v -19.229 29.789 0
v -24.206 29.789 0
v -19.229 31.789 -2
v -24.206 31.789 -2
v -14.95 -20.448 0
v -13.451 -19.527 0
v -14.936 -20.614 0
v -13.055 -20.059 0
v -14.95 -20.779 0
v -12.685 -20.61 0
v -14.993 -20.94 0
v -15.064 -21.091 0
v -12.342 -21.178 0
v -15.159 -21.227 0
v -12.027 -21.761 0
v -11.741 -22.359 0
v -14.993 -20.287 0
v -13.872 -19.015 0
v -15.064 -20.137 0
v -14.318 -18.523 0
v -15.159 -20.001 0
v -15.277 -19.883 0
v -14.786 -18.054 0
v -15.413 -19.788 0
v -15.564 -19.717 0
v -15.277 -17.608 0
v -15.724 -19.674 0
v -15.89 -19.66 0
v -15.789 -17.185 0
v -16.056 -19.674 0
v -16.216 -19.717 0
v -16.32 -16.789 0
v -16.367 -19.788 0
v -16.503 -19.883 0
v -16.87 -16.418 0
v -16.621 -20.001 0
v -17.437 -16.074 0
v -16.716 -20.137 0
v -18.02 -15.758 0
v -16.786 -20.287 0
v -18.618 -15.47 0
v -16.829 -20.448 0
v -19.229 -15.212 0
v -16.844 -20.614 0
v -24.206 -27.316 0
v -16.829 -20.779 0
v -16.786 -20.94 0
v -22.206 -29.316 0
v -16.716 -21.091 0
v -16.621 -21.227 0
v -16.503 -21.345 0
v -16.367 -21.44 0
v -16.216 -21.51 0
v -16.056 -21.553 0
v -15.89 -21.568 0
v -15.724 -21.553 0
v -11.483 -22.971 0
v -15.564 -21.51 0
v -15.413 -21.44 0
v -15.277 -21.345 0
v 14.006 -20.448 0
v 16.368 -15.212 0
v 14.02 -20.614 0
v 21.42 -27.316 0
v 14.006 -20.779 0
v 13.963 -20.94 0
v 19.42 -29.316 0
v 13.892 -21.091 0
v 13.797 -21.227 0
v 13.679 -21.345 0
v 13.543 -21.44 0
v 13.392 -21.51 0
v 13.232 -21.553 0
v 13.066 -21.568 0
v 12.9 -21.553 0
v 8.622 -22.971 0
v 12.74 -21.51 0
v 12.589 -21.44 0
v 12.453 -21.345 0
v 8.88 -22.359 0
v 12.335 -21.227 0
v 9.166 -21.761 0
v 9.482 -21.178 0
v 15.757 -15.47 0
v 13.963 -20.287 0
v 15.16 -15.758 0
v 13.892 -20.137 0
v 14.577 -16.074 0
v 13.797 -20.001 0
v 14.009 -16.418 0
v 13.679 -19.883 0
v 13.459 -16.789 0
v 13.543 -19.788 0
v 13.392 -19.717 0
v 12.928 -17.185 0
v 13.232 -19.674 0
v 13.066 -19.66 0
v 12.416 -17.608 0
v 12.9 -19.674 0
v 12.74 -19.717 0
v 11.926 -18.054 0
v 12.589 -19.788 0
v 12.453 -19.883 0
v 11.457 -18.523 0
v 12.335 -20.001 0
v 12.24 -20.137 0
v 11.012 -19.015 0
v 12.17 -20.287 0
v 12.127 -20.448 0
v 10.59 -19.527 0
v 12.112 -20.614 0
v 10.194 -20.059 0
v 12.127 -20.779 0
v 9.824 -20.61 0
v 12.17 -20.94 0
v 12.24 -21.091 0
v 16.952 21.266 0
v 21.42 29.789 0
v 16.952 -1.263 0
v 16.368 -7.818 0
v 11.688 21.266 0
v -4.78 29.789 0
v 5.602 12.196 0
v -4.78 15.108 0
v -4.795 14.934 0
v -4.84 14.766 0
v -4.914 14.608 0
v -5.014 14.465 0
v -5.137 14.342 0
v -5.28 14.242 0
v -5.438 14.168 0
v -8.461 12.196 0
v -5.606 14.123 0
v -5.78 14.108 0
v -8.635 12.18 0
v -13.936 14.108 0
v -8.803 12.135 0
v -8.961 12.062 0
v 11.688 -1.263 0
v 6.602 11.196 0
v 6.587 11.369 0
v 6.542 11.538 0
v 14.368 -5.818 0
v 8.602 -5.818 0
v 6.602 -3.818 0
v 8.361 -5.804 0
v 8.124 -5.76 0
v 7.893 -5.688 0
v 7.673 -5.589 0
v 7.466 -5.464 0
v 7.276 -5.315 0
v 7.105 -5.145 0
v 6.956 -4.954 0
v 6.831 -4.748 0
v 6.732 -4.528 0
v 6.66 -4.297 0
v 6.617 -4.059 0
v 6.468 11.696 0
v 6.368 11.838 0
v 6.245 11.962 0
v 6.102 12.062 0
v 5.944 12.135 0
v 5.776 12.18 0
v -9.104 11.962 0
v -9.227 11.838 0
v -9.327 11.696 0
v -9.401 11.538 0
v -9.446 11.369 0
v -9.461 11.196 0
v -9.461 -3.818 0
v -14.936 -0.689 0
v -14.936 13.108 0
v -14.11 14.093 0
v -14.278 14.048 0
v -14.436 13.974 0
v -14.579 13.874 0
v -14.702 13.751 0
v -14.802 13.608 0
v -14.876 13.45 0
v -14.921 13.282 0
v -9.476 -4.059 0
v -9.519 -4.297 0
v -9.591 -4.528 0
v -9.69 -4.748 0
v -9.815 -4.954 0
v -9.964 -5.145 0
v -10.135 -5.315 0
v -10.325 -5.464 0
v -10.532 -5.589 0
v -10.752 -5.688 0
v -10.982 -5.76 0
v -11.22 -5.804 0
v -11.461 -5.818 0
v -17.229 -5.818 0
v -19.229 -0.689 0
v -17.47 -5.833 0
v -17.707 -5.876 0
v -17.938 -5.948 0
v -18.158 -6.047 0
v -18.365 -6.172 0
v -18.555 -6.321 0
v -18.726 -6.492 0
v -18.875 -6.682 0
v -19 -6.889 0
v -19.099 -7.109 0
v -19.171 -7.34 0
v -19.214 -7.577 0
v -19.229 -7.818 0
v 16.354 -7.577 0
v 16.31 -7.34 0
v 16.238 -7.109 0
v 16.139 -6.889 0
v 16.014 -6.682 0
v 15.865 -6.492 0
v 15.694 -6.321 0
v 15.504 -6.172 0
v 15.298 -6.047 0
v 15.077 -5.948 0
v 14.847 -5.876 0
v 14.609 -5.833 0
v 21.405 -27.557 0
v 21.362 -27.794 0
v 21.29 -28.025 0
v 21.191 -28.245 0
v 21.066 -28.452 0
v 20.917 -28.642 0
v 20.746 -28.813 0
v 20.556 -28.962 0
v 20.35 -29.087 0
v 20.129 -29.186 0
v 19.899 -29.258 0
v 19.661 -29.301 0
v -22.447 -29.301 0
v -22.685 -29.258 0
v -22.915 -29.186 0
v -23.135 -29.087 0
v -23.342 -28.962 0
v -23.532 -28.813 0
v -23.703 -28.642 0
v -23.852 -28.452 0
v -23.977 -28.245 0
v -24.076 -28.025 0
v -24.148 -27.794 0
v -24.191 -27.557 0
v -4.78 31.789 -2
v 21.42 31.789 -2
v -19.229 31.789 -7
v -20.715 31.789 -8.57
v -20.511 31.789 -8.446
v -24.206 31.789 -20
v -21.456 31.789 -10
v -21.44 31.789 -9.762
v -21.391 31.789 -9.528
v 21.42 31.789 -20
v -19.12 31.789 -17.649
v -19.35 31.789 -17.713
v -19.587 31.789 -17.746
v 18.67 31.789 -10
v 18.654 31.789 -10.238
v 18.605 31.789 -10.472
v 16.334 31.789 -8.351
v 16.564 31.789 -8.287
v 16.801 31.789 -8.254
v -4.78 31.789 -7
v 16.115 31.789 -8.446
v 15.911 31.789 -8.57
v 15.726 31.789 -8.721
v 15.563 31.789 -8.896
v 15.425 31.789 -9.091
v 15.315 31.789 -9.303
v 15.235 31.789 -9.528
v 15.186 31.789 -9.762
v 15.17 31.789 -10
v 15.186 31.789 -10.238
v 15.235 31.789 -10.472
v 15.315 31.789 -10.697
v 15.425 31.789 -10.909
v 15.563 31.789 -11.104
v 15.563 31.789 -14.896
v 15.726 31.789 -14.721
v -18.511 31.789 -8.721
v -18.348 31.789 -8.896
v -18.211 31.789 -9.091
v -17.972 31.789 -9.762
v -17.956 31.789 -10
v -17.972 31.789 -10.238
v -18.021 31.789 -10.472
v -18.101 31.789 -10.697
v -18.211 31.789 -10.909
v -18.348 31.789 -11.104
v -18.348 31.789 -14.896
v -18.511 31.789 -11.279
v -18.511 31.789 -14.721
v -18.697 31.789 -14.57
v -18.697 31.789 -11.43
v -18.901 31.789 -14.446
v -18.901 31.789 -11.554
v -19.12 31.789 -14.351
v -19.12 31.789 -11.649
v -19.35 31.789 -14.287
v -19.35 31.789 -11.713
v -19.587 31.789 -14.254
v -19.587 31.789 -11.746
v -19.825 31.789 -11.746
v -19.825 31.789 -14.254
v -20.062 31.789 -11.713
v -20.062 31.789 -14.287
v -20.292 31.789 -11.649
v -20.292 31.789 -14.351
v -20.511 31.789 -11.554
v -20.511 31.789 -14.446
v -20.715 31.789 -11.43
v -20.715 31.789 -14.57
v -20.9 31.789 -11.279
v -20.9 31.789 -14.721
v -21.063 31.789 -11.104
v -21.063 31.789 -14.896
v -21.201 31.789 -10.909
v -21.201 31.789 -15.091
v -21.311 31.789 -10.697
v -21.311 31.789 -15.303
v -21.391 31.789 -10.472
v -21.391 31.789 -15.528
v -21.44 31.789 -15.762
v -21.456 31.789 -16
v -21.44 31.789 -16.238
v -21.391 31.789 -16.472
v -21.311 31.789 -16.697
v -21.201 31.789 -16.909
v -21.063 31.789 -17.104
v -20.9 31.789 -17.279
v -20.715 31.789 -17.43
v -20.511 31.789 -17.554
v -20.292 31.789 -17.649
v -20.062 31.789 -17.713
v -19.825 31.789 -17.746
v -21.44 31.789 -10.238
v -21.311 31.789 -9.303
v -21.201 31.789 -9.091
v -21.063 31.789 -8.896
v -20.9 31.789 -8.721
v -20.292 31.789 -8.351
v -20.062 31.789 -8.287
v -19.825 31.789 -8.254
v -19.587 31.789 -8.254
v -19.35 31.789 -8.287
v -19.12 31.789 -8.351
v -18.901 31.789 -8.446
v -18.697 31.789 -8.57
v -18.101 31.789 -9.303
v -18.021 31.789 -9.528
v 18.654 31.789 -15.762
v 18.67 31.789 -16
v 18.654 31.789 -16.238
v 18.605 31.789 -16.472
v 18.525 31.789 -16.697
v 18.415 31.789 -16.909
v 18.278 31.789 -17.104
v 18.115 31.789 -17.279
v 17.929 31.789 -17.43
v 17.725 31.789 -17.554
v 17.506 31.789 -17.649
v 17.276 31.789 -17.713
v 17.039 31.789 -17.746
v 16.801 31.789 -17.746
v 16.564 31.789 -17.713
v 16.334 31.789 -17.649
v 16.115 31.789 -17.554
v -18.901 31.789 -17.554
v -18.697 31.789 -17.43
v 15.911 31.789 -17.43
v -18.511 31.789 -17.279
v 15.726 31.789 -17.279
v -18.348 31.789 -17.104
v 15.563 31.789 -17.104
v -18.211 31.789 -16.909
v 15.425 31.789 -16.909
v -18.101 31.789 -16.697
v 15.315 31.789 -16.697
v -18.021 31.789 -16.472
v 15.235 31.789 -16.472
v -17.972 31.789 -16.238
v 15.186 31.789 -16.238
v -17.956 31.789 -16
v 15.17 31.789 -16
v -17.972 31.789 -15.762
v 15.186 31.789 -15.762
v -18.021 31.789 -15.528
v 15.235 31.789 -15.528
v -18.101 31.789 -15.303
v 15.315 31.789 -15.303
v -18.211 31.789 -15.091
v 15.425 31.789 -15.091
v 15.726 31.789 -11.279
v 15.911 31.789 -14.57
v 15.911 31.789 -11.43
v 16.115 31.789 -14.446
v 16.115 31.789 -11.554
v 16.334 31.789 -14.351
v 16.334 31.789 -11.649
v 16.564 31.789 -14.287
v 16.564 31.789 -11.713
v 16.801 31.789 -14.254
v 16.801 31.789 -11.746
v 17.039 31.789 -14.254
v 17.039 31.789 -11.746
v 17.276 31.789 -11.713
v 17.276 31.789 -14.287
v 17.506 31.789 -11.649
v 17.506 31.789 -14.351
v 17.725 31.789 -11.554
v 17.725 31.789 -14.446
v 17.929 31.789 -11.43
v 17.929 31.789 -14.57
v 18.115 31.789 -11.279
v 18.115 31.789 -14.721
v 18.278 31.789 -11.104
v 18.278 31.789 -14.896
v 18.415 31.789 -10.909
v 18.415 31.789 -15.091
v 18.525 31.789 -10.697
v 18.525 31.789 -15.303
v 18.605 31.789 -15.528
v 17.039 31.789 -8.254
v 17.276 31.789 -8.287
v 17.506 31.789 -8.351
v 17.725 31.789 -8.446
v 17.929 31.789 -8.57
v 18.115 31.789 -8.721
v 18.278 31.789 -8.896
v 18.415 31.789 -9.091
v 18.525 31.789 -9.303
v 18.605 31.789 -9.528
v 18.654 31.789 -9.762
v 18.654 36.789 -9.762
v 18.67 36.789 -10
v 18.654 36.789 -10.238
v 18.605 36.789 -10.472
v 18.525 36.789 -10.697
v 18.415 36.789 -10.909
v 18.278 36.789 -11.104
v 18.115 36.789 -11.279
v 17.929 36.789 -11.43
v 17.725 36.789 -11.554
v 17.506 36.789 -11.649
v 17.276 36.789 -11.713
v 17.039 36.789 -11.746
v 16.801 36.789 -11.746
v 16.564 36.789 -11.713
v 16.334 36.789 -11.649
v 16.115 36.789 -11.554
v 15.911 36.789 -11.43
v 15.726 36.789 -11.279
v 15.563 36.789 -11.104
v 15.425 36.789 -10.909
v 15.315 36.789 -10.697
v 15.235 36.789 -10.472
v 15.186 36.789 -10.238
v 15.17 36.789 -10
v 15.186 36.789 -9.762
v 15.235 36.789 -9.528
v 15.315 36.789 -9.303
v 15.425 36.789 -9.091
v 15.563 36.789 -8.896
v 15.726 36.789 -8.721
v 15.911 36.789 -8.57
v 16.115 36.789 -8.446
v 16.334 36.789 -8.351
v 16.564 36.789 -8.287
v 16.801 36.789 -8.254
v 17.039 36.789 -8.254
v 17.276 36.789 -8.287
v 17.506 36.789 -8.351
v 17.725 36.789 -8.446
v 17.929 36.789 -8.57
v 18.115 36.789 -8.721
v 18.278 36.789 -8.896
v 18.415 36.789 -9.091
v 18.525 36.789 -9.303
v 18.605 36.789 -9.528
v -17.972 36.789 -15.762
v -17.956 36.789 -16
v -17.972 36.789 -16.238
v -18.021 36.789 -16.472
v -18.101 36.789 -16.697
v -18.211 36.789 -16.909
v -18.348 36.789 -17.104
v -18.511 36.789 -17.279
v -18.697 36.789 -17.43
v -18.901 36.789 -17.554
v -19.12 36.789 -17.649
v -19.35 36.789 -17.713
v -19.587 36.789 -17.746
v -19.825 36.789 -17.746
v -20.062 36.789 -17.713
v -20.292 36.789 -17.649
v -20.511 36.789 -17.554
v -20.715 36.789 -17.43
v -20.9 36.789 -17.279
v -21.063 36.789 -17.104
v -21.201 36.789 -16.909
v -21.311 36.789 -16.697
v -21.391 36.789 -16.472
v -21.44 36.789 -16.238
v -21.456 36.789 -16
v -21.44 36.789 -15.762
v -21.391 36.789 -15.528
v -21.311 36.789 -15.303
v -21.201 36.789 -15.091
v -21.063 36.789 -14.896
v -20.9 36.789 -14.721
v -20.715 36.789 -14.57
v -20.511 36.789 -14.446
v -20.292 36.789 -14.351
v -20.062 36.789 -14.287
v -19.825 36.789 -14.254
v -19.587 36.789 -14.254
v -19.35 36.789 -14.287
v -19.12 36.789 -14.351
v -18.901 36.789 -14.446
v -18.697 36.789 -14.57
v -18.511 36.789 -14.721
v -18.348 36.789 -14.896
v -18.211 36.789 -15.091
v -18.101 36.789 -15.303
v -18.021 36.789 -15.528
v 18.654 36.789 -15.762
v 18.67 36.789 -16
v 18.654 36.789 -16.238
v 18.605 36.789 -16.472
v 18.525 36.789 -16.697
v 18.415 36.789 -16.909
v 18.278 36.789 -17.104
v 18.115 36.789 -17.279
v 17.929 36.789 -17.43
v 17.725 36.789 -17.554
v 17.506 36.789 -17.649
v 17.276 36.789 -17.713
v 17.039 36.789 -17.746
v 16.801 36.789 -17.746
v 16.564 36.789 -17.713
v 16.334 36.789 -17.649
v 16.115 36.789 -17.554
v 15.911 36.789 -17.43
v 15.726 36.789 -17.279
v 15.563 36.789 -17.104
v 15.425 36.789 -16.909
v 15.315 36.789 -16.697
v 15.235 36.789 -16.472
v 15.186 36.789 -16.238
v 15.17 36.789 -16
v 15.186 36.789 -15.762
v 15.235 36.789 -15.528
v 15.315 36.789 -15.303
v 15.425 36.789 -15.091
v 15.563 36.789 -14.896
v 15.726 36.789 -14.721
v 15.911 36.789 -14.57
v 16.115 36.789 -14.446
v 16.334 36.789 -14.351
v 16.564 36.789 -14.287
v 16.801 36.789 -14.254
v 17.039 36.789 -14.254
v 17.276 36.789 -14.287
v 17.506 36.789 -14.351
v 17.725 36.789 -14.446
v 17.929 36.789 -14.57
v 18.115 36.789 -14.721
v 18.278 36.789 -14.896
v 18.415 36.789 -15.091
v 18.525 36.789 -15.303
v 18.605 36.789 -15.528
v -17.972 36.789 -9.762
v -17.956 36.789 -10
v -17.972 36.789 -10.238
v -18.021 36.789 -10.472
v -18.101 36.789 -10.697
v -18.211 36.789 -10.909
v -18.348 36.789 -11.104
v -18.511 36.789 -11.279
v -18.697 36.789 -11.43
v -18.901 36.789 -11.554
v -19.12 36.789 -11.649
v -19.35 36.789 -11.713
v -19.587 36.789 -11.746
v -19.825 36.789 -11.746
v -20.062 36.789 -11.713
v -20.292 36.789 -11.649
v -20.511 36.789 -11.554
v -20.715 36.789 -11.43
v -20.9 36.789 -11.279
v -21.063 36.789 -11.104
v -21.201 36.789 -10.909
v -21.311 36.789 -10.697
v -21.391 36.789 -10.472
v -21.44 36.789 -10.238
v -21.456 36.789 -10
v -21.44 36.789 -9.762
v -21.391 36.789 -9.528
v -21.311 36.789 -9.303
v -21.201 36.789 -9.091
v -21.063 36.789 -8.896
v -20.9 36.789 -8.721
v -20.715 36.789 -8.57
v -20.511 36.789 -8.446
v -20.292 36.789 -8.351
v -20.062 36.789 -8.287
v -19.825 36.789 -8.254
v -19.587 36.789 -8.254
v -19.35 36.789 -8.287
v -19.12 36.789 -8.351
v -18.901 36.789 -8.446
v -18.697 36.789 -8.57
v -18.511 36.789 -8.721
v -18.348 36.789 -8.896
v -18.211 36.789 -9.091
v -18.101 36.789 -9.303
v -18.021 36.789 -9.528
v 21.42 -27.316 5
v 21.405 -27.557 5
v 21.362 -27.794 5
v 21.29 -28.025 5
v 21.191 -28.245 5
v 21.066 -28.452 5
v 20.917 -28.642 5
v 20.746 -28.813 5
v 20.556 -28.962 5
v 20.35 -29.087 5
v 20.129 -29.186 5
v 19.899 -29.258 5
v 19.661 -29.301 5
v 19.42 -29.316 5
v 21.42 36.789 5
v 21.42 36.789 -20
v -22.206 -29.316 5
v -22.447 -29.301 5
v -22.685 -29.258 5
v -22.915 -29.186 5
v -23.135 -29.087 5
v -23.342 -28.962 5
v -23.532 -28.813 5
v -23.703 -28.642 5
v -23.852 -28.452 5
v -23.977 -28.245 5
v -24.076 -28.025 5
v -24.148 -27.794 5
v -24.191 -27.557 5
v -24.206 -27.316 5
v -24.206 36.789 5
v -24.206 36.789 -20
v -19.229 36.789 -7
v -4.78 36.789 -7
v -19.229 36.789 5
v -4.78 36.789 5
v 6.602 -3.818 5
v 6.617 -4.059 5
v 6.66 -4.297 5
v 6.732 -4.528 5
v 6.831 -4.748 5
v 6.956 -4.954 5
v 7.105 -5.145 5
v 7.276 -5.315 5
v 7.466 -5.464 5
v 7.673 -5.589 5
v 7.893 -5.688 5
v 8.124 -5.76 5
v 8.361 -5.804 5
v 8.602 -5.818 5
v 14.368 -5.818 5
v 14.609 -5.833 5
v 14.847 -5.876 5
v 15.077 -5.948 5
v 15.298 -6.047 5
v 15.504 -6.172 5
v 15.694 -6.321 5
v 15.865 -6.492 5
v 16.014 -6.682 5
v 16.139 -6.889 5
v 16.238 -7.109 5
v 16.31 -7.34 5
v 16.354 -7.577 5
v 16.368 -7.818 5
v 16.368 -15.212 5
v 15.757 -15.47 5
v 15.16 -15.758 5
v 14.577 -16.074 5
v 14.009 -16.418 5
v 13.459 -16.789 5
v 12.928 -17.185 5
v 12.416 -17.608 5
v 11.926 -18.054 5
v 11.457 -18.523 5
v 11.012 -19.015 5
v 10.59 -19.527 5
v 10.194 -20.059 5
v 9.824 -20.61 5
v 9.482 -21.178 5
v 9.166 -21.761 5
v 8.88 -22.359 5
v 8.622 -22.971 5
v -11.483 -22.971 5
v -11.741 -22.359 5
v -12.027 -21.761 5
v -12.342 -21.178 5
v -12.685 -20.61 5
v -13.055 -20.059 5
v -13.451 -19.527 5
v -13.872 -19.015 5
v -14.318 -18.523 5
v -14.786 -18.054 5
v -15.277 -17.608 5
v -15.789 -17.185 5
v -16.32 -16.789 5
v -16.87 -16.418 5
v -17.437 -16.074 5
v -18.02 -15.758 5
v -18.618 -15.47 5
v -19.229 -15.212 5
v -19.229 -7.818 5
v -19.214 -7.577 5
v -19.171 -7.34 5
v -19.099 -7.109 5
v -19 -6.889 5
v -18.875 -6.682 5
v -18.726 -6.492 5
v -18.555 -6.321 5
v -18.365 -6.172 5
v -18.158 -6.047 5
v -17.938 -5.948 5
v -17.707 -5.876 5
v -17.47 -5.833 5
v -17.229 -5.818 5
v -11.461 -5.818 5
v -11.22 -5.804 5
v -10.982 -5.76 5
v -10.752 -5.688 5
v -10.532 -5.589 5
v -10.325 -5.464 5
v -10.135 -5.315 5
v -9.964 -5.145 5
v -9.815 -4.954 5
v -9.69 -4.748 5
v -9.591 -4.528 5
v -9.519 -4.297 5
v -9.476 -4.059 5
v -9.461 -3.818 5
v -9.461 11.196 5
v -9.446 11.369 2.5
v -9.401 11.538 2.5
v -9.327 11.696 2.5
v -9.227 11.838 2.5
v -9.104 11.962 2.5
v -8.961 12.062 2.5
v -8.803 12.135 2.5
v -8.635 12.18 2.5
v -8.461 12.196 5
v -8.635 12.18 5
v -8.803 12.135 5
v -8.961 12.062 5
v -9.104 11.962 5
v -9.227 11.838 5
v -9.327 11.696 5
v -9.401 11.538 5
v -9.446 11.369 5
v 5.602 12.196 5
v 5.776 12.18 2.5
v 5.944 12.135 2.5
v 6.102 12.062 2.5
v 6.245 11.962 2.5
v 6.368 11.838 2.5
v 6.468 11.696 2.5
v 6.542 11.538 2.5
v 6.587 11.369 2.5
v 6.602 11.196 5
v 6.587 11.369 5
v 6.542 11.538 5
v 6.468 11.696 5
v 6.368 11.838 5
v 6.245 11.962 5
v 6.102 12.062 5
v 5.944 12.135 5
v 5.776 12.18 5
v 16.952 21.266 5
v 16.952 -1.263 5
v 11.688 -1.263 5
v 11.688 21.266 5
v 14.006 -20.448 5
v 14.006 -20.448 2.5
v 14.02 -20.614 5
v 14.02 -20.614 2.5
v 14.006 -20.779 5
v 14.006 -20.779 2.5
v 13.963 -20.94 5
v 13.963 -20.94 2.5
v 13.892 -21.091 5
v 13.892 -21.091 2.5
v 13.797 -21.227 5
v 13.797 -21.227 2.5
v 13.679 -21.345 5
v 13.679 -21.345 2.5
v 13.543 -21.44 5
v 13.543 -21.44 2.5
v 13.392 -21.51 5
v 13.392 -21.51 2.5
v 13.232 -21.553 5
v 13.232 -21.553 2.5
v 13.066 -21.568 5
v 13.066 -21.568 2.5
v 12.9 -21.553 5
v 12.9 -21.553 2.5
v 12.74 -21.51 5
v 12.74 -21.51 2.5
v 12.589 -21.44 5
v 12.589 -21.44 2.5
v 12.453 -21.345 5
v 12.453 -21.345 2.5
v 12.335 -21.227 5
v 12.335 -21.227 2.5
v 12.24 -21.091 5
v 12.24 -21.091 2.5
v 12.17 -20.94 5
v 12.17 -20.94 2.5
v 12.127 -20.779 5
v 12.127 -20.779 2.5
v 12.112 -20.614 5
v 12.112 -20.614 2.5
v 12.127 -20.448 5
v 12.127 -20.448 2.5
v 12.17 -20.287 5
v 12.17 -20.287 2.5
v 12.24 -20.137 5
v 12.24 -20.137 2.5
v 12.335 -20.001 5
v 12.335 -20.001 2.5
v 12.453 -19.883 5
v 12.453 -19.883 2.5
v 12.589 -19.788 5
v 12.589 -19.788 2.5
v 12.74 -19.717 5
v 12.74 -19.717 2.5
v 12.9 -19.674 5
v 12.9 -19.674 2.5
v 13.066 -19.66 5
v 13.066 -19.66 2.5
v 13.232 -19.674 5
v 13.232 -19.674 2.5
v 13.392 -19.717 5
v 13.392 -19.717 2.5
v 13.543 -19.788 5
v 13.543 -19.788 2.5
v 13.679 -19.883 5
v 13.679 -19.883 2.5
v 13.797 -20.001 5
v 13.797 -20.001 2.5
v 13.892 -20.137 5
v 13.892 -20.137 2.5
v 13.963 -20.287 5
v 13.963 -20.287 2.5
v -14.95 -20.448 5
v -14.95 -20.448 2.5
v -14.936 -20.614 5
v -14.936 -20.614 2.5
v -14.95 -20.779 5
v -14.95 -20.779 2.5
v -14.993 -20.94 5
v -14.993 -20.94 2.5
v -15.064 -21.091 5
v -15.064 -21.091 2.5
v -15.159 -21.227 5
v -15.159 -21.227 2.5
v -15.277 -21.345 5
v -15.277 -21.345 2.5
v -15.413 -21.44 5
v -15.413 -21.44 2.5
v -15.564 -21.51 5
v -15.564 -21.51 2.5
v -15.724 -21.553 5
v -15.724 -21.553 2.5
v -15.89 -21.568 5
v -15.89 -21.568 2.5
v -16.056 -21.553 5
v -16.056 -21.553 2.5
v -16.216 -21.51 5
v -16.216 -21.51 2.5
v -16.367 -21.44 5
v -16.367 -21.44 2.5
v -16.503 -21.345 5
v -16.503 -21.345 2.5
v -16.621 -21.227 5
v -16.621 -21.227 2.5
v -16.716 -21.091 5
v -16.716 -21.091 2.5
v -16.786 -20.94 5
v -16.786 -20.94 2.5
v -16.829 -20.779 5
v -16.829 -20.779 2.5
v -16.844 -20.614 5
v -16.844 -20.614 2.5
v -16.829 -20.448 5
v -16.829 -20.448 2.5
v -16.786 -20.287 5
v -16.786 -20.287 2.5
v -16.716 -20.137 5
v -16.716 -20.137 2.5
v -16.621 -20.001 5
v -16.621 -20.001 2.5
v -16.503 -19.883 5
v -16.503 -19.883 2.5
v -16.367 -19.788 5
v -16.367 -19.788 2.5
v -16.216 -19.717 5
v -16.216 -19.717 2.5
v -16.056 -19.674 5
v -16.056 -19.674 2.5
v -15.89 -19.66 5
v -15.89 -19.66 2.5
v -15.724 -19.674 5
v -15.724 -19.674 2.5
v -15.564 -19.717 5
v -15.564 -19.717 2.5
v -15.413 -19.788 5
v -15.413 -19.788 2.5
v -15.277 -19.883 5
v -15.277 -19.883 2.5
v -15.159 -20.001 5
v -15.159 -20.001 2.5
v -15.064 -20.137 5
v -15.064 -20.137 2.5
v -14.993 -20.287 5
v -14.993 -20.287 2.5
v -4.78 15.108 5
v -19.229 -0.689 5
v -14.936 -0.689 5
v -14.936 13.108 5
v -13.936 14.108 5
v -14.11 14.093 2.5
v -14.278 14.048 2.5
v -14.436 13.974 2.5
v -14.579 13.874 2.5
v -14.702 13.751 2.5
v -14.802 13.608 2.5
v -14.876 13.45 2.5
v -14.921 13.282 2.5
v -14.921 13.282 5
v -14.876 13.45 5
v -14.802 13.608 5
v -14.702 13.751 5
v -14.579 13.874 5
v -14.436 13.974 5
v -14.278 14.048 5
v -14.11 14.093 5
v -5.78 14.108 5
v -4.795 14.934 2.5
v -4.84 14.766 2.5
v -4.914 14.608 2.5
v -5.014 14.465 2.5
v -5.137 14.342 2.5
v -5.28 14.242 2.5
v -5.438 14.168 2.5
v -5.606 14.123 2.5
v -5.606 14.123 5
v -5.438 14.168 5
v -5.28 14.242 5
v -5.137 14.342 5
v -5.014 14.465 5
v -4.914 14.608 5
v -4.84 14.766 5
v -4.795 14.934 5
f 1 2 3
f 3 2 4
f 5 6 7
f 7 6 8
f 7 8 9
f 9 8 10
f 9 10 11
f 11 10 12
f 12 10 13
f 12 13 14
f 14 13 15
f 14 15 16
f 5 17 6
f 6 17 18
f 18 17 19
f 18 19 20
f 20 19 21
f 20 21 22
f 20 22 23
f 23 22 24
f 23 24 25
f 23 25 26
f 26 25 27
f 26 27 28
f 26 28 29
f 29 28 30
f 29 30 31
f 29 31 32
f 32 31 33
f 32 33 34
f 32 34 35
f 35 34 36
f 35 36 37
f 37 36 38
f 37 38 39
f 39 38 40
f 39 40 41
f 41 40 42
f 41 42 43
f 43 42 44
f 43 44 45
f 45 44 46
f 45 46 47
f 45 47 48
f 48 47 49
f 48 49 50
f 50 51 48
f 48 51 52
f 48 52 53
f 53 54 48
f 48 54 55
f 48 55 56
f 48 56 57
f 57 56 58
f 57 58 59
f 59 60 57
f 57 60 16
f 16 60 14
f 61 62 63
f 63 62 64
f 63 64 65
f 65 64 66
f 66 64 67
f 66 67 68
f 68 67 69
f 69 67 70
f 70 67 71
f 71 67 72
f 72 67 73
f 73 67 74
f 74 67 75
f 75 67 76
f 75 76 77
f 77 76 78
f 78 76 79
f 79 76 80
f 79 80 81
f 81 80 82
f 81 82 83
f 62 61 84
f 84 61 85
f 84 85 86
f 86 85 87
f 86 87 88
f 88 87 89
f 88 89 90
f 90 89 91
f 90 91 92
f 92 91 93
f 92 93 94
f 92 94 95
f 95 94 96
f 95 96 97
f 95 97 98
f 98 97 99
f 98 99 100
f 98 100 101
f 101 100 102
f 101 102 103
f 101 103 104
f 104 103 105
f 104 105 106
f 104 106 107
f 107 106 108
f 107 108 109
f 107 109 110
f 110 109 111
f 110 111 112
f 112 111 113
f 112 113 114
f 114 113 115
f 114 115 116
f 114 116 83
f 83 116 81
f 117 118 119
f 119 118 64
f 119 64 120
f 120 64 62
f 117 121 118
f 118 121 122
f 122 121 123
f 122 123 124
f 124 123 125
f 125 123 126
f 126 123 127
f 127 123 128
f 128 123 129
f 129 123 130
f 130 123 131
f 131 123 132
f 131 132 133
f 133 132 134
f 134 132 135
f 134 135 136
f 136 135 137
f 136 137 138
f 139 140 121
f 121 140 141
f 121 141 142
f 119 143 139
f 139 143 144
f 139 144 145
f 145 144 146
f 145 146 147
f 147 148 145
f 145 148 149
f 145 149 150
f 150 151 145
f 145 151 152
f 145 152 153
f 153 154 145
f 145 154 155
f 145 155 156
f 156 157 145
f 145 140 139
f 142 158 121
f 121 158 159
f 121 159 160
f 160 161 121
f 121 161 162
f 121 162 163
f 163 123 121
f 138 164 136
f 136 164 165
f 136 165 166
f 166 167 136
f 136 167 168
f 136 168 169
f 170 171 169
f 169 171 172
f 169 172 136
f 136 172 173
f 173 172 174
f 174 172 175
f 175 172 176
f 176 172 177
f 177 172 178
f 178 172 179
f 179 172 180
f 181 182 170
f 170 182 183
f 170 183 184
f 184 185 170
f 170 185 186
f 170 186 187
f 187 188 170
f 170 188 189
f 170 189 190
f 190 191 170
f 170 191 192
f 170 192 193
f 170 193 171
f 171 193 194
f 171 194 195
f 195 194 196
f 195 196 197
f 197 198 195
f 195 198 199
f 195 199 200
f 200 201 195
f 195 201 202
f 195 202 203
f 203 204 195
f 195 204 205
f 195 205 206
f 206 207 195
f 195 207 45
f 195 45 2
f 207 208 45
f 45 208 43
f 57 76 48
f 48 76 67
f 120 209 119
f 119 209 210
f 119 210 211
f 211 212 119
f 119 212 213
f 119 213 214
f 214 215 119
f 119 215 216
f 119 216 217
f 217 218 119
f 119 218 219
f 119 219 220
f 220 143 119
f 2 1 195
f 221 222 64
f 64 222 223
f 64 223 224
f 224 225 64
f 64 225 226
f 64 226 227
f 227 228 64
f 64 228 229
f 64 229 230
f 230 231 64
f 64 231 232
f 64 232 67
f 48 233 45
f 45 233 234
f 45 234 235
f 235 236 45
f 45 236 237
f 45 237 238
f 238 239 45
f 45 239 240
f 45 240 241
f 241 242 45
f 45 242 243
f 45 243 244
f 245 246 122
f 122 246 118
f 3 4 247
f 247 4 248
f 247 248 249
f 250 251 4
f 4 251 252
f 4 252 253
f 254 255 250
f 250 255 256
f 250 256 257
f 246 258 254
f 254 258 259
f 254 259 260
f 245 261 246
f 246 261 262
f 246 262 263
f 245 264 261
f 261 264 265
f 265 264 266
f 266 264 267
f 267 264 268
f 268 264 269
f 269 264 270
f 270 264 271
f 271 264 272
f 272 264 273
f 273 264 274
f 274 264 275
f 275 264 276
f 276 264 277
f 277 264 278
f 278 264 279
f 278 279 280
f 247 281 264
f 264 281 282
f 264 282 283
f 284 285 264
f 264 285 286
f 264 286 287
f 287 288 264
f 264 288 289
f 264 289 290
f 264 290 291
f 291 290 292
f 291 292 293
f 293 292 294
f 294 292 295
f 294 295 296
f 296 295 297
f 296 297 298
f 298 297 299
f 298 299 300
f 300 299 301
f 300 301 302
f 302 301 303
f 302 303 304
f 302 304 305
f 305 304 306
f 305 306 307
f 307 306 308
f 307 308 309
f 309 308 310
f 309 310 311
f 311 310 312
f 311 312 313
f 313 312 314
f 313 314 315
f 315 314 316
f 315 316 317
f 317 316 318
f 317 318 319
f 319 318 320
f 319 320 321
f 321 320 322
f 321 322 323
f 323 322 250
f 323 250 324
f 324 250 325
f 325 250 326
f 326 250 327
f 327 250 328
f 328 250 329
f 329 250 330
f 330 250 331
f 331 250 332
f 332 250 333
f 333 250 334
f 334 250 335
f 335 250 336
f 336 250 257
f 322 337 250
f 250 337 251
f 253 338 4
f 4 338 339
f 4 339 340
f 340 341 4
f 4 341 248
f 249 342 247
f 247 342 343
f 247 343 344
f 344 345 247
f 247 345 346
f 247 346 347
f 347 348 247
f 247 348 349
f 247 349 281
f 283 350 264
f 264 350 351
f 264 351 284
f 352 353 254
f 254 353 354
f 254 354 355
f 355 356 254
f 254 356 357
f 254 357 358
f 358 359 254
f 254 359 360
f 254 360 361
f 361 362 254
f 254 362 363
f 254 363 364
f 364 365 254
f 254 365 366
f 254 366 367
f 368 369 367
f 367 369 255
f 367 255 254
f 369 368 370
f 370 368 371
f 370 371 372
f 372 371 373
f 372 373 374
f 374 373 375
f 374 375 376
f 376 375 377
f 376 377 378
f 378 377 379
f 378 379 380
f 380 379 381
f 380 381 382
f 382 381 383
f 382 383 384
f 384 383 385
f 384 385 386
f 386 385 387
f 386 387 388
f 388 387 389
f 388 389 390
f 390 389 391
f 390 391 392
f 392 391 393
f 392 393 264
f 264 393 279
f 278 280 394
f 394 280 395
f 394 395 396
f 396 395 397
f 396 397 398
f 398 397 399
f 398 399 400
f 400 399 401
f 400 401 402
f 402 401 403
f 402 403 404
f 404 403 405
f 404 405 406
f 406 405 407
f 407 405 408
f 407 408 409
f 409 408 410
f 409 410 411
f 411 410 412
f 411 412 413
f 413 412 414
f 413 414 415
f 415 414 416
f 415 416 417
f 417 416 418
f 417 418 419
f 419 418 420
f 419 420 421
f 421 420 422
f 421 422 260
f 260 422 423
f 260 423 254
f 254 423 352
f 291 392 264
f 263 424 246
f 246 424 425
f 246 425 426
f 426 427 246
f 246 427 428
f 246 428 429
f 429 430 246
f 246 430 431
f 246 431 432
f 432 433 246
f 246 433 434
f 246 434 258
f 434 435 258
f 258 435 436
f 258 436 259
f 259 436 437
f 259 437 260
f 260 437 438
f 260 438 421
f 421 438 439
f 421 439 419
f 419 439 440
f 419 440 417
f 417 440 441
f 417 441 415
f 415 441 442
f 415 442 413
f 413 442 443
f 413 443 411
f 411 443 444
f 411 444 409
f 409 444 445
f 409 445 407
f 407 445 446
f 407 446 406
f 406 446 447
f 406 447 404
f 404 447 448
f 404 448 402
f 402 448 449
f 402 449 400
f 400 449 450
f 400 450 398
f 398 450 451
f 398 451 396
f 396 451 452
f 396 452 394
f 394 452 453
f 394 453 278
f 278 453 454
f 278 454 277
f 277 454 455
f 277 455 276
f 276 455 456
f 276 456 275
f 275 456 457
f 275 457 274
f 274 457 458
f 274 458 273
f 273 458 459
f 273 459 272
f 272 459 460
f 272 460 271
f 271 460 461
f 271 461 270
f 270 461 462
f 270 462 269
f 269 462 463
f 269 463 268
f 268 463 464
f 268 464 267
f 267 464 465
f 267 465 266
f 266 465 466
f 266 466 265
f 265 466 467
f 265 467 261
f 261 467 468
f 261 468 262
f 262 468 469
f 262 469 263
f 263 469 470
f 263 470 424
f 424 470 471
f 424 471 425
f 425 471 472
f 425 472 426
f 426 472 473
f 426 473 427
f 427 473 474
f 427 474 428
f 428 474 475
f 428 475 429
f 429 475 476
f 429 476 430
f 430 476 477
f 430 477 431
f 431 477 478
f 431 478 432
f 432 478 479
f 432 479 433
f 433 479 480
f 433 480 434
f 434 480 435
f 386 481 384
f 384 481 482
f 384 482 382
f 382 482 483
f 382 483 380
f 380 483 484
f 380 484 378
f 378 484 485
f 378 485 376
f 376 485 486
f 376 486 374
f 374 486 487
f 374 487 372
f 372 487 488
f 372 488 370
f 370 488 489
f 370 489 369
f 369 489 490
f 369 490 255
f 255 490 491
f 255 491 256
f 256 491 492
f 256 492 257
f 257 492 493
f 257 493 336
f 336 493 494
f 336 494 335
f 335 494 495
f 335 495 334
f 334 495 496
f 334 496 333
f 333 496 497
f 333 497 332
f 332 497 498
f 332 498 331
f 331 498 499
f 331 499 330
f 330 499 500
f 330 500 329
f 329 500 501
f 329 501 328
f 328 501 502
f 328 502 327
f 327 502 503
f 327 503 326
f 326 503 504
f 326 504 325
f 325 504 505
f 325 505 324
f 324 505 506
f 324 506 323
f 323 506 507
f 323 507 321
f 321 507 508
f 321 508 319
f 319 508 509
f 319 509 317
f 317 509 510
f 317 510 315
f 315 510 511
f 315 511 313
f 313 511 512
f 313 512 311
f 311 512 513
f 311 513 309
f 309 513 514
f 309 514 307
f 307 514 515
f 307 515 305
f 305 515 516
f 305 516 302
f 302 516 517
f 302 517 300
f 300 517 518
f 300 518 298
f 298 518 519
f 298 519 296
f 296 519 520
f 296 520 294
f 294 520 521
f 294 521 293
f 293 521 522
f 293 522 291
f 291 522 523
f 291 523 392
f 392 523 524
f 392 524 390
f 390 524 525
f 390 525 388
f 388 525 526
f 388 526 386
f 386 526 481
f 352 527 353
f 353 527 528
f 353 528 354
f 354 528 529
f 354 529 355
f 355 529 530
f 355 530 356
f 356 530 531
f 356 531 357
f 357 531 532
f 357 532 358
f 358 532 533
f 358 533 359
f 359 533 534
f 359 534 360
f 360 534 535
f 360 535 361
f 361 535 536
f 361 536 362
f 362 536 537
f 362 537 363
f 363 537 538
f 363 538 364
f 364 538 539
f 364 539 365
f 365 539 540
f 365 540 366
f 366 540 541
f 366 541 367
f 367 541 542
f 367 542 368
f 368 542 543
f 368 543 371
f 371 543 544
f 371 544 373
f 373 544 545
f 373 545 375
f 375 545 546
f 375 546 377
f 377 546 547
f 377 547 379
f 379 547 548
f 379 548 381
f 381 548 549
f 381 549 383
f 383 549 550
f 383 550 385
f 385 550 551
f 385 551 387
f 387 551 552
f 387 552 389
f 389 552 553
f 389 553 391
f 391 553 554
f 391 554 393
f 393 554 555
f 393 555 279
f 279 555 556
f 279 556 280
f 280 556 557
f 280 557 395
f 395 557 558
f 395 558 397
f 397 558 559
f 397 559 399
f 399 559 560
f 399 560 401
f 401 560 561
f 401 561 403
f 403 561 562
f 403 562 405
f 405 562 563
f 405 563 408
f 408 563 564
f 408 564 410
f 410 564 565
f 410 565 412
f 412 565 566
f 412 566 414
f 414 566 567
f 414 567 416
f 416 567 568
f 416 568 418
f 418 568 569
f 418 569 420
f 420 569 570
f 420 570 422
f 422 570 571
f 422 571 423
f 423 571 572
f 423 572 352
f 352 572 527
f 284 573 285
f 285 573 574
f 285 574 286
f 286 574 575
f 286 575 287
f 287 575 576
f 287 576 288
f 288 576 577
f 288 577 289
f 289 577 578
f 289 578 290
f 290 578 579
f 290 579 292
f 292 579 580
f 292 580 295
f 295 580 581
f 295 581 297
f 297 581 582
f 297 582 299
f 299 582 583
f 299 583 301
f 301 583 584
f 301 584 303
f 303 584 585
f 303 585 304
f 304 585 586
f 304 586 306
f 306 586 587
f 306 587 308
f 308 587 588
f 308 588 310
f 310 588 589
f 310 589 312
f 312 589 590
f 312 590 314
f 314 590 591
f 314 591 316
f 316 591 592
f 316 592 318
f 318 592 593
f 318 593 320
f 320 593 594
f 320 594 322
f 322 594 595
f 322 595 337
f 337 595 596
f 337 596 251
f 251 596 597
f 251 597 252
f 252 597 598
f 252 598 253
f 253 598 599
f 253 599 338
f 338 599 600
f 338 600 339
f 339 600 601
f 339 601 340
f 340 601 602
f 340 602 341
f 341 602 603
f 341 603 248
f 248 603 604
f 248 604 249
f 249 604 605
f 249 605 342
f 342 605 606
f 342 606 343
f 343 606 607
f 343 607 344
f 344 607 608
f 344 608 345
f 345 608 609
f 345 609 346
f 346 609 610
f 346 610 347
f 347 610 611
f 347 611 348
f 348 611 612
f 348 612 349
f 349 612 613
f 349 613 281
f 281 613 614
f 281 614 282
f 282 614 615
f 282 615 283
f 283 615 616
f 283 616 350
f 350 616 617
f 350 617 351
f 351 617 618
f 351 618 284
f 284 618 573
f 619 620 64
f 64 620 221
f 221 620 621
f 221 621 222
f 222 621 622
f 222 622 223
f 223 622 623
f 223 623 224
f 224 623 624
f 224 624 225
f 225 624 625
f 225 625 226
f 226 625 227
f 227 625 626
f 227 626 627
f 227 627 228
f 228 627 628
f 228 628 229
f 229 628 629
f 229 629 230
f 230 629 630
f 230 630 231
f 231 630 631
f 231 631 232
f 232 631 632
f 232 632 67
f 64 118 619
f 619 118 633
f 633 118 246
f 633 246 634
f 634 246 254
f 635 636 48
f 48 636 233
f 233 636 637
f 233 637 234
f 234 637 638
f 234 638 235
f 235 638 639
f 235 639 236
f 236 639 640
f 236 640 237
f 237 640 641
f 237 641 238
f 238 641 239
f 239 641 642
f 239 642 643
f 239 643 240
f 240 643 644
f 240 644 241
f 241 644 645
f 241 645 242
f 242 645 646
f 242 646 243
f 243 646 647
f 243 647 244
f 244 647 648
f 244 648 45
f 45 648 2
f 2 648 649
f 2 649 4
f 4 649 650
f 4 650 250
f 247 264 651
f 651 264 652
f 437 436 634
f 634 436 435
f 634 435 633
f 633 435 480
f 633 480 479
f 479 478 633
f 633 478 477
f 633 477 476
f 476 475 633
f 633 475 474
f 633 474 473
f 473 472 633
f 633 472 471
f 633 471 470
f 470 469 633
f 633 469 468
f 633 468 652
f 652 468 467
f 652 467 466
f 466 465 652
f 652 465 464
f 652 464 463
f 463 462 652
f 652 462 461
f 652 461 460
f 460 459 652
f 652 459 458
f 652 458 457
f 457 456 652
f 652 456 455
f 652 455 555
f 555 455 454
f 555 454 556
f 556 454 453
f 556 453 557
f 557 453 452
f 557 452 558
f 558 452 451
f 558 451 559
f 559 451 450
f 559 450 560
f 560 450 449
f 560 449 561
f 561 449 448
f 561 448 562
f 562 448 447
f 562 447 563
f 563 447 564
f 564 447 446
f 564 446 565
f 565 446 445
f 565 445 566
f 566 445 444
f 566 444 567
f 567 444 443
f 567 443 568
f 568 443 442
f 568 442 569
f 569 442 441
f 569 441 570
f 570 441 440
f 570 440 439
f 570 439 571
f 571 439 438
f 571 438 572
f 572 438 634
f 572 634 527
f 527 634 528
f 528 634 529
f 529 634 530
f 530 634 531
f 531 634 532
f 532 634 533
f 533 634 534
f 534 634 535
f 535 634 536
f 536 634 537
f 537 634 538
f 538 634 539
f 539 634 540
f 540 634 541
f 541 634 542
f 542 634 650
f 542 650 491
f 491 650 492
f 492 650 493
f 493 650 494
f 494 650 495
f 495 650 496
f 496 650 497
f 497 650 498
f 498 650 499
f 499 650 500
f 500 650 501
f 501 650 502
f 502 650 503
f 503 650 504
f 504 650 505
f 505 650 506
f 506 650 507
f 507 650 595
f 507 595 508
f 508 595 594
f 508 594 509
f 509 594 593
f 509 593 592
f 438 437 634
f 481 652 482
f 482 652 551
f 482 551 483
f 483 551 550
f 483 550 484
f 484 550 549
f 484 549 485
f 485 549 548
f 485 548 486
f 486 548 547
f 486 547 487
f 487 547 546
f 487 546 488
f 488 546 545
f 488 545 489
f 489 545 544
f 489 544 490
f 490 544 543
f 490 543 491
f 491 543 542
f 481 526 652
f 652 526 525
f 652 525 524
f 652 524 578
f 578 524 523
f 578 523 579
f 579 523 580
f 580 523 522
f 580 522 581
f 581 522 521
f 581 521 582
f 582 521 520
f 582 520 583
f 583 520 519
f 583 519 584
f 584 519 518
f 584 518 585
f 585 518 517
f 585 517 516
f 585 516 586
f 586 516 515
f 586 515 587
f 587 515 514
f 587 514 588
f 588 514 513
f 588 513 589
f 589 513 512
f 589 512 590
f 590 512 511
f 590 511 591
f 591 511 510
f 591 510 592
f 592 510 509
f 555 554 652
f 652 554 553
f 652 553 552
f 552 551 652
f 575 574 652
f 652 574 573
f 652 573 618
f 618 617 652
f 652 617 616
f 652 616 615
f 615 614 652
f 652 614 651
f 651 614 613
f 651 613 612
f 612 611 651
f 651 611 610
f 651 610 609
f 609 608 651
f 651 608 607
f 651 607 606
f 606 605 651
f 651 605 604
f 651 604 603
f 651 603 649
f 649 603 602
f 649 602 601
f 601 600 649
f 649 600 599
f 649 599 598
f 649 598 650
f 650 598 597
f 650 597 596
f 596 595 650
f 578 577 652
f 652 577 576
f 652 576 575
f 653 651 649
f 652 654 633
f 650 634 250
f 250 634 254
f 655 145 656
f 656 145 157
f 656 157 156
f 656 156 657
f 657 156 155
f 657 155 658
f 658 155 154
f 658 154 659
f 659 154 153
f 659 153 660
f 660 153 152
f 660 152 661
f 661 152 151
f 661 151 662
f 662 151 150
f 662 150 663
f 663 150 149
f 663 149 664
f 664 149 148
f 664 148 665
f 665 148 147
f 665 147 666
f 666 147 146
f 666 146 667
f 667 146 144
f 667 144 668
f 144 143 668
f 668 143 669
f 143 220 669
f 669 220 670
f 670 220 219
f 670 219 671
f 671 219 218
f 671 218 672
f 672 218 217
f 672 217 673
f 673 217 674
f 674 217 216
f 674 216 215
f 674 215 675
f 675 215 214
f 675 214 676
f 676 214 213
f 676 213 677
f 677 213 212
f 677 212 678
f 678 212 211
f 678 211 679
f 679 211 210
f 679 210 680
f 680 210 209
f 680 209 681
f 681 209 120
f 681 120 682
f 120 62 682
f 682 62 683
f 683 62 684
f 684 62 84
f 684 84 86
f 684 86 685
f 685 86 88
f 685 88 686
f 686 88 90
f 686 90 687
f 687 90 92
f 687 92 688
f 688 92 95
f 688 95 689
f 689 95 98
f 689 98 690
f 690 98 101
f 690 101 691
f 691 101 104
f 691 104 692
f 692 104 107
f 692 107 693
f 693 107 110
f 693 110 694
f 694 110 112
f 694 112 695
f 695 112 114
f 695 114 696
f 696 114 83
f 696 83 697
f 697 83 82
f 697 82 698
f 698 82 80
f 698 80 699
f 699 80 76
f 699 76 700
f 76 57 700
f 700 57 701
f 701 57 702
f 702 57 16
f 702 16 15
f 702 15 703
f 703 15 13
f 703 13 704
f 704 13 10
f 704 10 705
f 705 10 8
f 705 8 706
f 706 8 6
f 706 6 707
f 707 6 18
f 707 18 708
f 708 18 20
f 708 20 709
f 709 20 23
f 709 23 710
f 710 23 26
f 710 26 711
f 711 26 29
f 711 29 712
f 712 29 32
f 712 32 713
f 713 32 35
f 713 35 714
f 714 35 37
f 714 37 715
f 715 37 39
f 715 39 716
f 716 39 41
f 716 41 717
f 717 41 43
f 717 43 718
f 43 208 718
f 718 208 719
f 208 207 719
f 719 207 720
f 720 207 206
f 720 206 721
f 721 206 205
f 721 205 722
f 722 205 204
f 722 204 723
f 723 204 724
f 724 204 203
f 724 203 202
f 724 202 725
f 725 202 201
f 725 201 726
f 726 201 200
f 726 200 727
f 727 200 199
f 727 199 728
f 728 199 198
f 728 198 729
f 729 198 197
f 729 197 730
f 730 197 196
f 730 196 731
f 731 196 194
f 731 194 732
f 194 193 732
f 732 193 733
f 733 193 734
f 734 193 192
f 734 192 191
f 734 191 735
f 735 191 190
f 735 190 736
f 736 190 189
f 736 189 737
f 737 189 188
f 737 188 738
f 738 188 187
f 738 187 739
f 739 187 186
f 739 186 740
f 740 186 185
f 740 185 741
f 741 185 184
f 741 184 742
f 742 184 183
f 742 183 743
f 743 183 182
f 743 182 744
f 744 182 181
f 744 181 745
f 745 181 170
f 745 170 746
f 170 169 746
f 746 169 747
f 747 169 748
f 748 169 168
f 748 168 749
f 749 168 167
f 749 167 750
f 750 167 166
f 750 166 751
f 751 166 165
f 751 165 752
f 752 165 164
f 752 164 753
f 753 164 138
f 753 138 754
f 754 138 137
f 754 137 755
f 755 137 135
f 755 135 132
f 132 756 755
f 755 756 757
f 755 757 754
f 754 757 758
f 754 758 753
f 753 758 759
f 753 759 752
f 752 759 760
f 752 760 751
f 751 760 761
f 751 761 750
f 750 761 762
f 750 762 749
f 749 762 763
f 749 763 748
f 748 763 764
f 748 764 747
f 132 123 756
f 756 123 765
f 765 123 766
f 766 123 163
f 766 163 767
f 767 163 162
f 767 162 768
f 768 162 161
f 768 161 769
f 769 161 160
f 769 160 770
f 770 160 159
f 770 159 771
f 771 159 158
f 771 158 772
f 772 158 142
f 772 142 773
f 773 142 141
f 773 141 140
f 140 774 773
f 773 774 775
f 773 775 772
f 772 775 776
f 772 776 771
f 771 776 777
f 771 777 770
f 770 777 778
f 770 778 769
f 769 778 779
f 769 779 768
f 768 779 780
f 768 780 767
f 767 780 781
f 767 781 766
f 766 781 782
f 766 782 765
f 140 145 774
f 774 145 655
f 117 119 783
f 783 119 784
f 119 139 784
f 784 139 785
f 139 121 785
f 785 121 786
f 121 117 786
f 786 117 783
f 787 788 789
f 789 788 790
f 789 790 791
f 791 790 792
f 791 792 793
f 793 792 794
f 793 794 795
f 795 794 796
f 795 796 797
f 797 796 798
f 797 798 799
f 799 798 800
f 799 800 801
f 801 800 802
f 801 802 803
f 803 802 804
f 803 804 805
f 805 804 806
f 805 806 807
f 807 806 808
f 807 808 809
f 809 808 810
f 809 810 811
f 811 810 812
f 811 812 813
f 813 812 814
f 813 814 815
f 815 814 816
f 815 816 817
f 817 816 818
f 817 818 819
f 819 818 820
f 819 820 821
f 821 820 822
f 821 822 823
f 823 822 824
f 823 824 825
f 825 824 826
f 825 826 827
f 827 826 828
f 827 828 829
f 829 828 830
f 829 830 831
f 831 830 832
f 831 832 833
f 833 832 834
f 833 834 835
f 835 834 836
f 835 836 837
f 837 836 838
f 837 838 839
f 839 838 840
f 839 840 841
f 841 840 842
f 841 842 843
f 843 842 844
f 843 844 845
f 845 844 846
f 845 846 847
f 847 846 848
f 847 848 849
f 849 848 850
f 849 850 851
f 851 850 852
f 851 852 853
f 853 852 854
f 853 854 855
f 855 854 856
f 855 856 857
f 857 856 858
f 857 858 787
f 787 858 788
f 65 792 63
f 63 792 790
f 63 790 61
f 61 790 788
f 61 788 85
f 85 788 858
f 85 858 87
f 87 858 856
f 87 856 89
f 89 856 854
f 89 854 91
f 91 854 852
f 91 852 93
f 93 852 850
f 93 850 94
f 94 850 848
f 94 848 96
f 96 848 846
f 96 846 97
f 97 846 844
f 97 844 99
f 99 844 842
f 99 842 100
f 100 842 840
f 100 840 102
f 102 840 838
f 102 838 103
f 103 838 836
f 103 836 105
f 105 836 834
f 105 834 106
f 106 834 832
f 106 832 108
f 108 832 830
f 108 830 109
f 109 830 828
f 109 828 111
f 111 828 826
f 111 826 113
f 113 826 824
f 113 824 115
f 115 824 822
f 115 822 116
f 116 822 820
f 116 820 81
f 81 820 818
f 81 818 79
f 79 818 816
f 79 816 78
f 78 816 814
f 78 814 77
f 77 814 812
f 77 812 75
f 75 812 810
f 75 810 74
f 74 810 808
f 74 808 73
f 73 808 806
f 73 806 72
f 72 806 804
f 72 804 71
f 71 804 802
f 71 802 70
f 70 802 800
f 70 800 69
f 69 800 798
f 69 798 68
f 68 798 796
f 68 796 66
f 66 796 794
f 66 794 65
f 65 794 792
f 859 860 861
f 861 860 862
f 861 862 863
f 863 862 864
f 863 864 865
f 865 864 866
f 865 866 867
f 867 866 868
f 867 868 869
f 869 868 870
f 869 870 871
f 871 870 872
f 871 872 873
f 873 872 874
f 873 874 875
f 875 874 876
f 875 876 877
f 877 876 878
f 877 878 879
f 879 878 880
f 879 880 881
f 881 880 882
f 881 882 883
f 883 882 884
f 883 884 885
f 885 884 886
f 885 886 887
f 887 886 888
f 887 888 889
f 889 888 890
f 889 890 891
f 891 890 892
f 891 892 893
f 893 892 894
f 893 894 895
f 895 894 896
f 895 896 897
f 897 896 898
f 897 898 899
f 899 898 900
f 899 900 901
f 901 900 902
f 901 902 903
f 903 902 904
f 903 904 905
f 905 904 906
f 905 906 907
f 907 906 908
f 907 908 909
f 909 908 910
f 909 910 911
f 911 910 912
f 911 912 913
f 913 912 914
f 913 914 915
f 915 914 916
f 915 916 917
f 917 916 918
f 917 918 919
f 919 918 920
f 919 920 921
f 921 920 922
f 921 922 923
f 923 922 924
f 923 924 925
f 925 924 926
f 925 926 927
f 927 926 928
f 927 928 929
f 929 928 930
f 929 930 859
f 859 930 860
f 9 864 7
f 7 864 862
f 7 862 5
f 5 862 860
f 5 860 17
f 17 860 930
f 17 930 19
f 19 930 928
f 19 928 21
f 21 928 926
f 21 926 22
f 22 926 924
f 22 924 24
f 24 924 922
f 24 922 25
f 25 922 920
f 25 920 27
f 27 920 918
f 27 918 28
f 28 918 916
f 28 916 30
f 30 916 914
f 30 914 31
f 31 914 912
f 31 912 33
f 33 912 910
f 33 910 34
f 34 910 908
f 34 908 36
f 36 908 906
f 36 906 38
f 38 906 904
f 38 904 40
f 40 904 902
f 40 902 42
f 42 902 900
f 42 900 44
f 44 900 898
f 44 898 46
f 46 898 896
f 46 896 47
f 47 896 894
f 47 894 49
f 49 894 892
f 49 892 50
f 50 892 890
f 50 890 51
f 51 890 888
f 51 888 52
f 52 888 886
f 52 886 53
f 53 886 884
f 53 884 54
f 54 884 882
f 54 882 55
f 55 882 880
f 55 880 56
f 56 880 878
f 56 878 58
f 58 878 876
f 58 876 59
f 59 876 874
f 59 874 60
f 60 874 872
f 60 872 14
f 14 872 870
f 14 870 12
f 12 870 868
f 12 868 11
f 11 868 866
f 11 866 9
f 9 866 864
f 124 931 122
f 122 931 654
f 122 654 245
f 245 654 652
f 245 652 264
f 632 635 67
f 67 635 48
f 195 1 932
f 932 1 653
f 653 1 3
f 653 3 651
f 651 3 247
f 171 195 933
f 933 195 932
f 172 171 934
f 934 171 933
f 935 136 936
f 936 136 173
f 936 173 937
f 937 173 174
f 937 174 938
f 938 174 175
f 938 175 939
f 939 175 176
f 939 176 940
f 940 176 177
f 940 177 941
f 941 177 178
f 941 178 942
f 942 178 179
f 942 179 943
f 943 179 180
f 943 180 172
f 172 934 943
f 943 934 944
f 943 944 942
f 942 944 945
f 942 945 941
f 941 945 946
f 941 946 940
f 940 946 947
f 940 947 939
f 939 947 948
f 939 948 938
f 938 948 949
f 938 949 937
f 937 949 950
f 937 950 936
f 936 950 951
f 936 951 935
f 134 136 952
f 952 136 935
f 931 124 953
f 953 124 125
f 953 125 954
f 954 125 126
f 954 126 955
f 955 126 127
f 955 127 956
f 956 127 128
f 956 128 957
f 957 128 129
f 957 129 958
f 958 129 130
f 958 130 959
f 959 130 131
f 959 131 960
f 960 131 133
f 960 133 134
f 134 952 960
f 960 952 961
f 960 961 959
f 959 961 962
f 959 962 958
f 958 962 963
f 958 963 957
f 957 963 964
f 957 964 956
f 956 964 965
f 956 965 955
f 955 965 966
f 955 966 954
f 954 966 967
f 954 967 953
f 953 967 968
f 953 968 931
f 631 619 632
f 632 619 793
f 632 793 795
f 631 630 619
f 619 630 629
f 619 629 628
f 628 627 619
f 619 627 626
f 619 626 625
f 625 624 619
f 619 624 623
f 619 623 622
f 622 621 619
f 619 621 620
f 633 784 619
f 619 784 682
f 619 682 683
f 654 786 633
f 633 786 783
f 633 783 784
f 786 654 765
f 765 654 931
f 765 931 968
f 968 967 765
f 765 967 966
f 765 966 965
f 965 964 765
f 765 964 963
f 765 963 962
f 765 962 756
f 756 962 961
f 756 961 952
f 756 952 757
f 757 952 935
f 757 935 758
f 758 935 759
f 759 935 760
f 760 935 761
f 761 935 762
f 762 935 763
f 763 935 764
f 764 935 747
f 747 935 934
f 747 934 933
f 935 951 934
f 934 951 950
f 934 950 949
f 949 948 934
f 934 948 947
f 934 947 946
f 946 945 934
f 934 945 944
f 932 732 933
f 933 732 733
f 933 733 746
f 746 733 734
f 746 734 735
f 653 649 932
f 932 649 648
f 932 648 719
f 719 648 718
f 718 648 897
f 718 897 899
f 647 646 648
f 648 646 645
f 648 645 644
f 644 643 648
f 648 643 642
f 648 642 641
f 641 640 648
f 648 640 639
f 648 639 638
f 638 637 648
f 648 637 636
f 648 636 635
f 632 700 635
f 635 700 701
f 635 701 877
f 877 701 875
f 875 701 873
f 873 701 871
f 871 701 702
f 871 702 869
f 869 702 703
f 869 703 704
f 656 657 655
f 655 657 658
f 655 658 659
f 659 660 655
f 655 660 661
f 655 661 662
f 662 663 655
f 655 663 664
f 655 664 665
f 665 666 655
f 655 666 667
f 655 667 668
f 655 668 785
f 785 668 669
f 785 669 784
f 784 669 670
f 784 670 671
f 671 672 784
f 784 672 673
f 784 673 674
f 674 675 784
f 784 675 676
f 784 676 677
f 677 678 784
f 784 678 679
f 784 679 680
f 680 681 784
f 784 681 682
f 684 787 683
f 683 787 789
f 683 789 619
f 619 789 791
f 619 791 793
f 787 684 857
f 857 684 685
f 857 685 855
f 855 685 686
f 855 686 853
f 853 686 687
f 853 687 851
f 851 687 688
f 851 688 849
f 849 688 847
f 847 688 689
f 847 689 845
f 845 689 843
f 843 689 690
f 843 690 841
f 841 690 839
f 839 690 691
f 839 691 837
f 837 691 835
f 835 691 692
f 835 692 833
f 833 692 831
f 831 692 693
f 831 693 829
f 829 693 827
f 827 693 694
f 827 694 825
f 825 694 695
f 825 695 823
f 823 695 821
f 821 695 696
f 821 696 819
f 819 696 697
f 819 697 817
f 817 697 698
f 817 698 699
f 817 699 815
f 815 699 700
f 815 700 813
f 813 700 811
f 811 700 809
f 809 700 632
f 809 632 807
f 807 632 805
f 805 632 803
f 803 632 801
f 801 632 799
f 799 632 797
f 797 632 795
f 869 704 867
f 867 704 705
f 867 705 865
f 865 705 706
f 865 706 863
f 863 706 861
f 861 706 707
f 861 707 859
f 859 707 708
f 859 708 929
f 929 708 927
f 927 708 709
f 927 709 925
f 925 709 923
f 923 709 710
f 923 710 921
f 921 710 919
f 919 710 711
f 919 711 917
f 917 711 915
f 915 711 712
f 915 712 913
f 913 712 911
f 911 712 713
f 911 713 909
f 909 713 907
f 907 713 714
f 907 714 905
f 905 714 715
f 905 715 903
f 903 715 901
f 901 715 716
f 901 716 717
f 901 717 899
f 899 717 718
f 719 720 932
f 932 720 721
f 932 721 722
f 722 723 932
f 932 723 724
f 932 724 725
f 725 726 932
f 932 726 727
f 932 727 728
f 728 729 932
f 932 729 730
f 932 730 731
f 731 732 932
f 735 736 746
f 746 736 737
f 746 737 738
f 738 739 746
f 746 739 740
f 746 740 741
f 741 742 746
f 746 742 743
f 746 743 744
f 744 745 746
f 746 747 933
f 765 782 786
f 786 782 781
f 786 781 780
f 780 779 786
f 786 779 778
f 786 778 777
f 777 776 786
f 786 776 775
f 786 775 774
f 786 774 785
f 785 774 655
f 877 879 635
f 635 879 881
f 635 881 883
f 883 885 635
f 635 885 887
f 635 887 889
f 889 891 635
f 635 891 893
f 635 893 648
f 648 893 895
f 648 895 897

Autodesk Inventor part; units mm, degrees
ref_plane "YZ Plane" through (0, 0, 0) normal (1, 0, 0) x (0, 1, 0)
ref_plane "XZ Plane" through (0, 0, 0) normal (0, 1, 0) x (-1, 0, 0)
ref_plane "XY Plane" through (0, 0, 0) normal (0, 0, 1) x (1, 0, 0)
sketch "スケッチ1" plane through (0, 0, 0) normal (0, 0, 1) x (1, 0, 0)
  line L0 (-24.2059, 21.7891) -> (-24.2059, -29.3158)
  line L1 (-24.2059, -29.3158) -> (21.4201, -29.3158)
  line L2 (21.4196, -22.9707) -> (21.4201, -22.9707)
  line L3 (-11.4832, -22.9707) -> (8.6224, -22.9707)
  arc A0 (-11.4832, -22.9707) -> (-19.2289, -15.2115) centre (-24.2804, -28) ccw
  line L4 (-19.2289, -15.2115) -> (-19.2289, -7.8183)
  arc A1 (-17.2289, -5.8183) -> (-19.2289, -7.8183) centre (-17.2289, -7.8183) ccw
  line L5 (-17.2289, -5.8183) -> (-11.461, -5.8183)
  arc A2 (-11.461, -5.8183) -> (-9.461, -3.8183) centre (-11.461, -3.8183) ccw
  line L6 (-9.461, -3.8183) -> (-9.461, 11.1956)
  arc A3 (-8.461, 12.1956) -> (-9.461, 11.1956) centre (-8.461, 11.1956) ccw
  line L7 (-8.461, 12.1956) -> (5.6023, 12.1956)
  arc A4 (6.6023, 11.1956) -> (5.6023, 12.1956) centre (5.6023, 11.1956) ccw
  line L8 (6.6023, 11.1956) -> (6.6023, -3.8183)
  arc A5 (6.6023, -3.8183) -> (8.6023, -5.8183) centre (8.6023, -3.8183) ccw
  line L9 (8.6023, -5.8183) -> (14.3681, -5.8183)
  arc A6 (16.3681, -7.8183) -> (14.3681, -5.8183) centre (14.3681, -7.8183) ccw
  line L10 (16.3681, -7.8183) -> (16.3681, -15.2115)
  arc A7 (16.3681, -15.2115) -> (8.6224, -22.9707) centre (21.4196, -28) ccw
  circle A8 centre (13.0661, -20.6138) radius 0.954
  circle A9 centre (-15.8899, -20.6138) radius 0.954
  arc A10 (-13.9359, 14.1081) -> (-14.9359, 13.1081) centre (-13.9359, 13.1081) ccw
  line L11 (-14.9359, 13.1081) -> (-14.9359, -0.6888)
  line L12 (-14.9359, -0.6888) -> (-19.2289, -0.6888)
  arc A11 (-5.7797, 14.1081) -> (-4.7797, 15.1081) centre (-5.7797, 15.1081) ccw
  line L13 (-5.7797, 14.1081) -> (-13.9359, 14.1081)
  line L14 (-24.2059, 26.7891) -> (-24.2059, 21.7891)
  line L15 (21.4201, -29.3158) -> (-24.2059, -29.3158)
  line L16 (-24.2059, -29.3158) -> (-24.2059, 26.7891)
  line L17 (21.4196, 26.7891) -> (21.4201, 26.7891)
  line L18 (-24.2059, 36.7891) -> (-24.2059, 26.7891)
  line L19 (-19.2289, 36.7891) -> (-24.2059, 36.7891)
  line L20 (-19.2289, 36.7891) -> (-19.2289, -0.6888)
  line L21 (-4.7797, 15.1081) -> (-4.7797, 36.7891)
  line L22 (21.4201, -29.3158) -> (21.4201, 36.7891)
  line L23 (21.4201, 36.7891) -> (-4.7797, 36.7891)
  line L24 (11.6885, 21.2661) -> (16.9518, 21.2661)
  line L25 (16.9518, 21.2661) -> (16.9518, -1.2633)
  line L26 (16.9518, -1.2633) -> (11.6885, -1.2633)
  line L27 (11.6885, -1.2633) -> (11.6885, 21.2661)
  point P0 (0, 0)
  point P1 (0, 0)
extrude "押し出し1" add sketch "スケッチ1" along normal blind 5
sketch "スケッチ2" plane through (0, 0, 0) normal (0, 0, -1) x (-1, 0, 0)
  line L0 (24.2059, 36.7891) -> (24.2059, -29.3158) projected
  line L1 (-21.4201, 36.7891) -> (24.2059, 36.7891)
  line L2 (24.2059, 36.7891) -> (24.2059, 31.7891)
  line L3 (24.2059, 31.7891) -> (-21.4201, 31.7891)
  line L4 (-21.4201, 31.7891) -> (-21.4201, 36.7891)
  point P0 (0, 0)
  dimension "d4" = 5
extrude "押し出し2" add sketch "スケッチ2" along normal blind 20
sketch "スケッチ3" plane through (-4.7797, 36.7891, 5) normal (0, 1, 0) x (1, 0, 0)
  line L0 (-10.1561, 5) -> (-14.4492, 5) projected
  line L1 (-14.4492, 5) -> (0, 5)
  line L2 (0, 5) -> (0, 12)
  line L3 (0, 12) -> (-14.4492, 12)
  line L4 (-14.4492, 12) -> (-14.4492, 5)
  point P0 (4.7797, 5)
  dimension "d7" = 7
extrude "押し出し3" cut sketch "スケッチ3" against normal blind 20
sketch "スケッチ4" plane through (-4.7797, 36.7891, 5) normal (0, 1, 0) x (1, 0, 0)
  circle A0 centre (-14.9262, 21) radius 1.75
  line L0 (-19.4262, 25) -> (26.1998, 25) projected
  line L1 (-19.4262, 25) -> (-19.4262, 0) projected
  circle A1 centre (21.6998, 21) radius 1.75
  line L2 (26.1998, 25) -> (26.1998, 0) projected
  circle A2 centre (21.6998, 15) radius 1.75
  circle A3 centre (-14.9262, 15) radius 1.75
  point P0 (4.7797, 5)
  dimension "d10" = 3.5
  dimension "d11" = 4
  dimension "d12" = 4.5
  dimension "d13" = 3.5
  dimension "d14" = 4
  dimension "d15" = 4.5
  dimension "d16" = 3.5
  dimension "d17" = 6
  dimension "d18" = 3.5
fillet "フィレット1" radius 2 2 edges at (-24.2059, -29.3158, 2.5) (21.4201, -29.3158, 2.5)
extrude "押し出し4" cut sketch "スケッチ4" against normal blind 20
chamfer "面取り1" distance 2 angle 45 2 edges at (8.3202, 31.7891, 0) (-21.7174, 31.7891, 0)
sketch "スケッチ5" plane through (-4.7797, 36.7891, 5) normal (0, 1, 0) x (1, 0, 0)
  circle A0 centre (21.6998, 15) radius 1.75 projected
  circle A1 centre (-14.9262, 21) radius 1.75 projected
  circle A2 centre (21.6998, 21) radius 1.75 projected
  circle A3 centre (-14.9262, 15) radius 1.75 projected
  line L0 (-14.4492, 12) -> (-14.4492, 0) projected
  line L1 (-14.4492, 12) -> (0, 12) projected
  line L2 (0, 12) -> (0, 0) projected
  line L3 (26.1998, 0) -> (0, 0) projected
  line L4 (26.1998, 25) -> (26.1998, 0) projected
  line L5 (-19.4262, 25) -> (26.1998, 25) projected
  line L6 (-19.4262, 25) -> (-19.4262, 0) projected
  line L7 (-14.4492, 0) -> (-19.4262, 0) projected
  point P0 (4.7797, 5)
properties part number "OpenMV-Mount-v2"
